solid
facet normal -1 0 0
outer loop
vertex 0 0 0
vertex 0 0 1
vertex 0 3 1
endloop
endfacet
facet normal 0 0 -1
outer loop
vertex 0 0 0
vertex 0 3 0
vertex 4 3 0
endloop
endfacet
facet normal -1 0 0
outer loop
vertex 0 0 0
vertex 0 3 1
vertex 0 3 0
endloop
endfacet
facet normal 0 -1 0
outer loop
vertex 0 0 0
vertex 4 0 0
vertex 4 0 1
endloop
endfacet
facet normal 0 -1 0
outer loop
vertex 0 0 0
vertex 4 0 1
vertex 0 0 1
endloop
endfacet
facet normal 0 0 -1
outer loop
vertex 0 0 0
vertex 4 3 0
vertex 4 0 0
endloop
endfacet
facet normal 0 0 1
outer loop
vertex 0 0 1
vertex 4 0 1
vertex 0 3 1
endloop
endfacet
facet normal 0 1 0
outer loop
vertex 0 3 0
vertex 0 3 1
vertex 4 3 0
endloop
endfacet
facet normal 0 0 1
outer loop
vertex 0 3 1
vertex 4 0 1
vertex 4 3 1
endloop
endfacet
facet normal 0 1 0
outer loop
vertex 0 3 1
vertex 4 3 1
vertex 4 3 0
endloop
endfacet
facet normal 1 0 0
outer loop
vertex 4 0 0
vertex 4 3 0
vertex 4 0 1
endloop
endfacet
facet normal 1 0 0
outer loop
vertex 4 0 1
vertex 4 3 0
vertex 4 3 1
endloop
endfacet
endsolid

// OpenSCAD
/* Warning, this is a very basic generator with a lot of approximation 
input data : [VQFN, HUC, 4x3x1.0mm, 28, , A, C04-25436A]
generated by com.zoubworld.electronics.cad.model3d.Basic
Date : Sun Feb 15 10:50:49 CET 2026
*/

//body
color("black")
translate([0,0,0])
cube([4.0,3.0,1.0], center=false);
